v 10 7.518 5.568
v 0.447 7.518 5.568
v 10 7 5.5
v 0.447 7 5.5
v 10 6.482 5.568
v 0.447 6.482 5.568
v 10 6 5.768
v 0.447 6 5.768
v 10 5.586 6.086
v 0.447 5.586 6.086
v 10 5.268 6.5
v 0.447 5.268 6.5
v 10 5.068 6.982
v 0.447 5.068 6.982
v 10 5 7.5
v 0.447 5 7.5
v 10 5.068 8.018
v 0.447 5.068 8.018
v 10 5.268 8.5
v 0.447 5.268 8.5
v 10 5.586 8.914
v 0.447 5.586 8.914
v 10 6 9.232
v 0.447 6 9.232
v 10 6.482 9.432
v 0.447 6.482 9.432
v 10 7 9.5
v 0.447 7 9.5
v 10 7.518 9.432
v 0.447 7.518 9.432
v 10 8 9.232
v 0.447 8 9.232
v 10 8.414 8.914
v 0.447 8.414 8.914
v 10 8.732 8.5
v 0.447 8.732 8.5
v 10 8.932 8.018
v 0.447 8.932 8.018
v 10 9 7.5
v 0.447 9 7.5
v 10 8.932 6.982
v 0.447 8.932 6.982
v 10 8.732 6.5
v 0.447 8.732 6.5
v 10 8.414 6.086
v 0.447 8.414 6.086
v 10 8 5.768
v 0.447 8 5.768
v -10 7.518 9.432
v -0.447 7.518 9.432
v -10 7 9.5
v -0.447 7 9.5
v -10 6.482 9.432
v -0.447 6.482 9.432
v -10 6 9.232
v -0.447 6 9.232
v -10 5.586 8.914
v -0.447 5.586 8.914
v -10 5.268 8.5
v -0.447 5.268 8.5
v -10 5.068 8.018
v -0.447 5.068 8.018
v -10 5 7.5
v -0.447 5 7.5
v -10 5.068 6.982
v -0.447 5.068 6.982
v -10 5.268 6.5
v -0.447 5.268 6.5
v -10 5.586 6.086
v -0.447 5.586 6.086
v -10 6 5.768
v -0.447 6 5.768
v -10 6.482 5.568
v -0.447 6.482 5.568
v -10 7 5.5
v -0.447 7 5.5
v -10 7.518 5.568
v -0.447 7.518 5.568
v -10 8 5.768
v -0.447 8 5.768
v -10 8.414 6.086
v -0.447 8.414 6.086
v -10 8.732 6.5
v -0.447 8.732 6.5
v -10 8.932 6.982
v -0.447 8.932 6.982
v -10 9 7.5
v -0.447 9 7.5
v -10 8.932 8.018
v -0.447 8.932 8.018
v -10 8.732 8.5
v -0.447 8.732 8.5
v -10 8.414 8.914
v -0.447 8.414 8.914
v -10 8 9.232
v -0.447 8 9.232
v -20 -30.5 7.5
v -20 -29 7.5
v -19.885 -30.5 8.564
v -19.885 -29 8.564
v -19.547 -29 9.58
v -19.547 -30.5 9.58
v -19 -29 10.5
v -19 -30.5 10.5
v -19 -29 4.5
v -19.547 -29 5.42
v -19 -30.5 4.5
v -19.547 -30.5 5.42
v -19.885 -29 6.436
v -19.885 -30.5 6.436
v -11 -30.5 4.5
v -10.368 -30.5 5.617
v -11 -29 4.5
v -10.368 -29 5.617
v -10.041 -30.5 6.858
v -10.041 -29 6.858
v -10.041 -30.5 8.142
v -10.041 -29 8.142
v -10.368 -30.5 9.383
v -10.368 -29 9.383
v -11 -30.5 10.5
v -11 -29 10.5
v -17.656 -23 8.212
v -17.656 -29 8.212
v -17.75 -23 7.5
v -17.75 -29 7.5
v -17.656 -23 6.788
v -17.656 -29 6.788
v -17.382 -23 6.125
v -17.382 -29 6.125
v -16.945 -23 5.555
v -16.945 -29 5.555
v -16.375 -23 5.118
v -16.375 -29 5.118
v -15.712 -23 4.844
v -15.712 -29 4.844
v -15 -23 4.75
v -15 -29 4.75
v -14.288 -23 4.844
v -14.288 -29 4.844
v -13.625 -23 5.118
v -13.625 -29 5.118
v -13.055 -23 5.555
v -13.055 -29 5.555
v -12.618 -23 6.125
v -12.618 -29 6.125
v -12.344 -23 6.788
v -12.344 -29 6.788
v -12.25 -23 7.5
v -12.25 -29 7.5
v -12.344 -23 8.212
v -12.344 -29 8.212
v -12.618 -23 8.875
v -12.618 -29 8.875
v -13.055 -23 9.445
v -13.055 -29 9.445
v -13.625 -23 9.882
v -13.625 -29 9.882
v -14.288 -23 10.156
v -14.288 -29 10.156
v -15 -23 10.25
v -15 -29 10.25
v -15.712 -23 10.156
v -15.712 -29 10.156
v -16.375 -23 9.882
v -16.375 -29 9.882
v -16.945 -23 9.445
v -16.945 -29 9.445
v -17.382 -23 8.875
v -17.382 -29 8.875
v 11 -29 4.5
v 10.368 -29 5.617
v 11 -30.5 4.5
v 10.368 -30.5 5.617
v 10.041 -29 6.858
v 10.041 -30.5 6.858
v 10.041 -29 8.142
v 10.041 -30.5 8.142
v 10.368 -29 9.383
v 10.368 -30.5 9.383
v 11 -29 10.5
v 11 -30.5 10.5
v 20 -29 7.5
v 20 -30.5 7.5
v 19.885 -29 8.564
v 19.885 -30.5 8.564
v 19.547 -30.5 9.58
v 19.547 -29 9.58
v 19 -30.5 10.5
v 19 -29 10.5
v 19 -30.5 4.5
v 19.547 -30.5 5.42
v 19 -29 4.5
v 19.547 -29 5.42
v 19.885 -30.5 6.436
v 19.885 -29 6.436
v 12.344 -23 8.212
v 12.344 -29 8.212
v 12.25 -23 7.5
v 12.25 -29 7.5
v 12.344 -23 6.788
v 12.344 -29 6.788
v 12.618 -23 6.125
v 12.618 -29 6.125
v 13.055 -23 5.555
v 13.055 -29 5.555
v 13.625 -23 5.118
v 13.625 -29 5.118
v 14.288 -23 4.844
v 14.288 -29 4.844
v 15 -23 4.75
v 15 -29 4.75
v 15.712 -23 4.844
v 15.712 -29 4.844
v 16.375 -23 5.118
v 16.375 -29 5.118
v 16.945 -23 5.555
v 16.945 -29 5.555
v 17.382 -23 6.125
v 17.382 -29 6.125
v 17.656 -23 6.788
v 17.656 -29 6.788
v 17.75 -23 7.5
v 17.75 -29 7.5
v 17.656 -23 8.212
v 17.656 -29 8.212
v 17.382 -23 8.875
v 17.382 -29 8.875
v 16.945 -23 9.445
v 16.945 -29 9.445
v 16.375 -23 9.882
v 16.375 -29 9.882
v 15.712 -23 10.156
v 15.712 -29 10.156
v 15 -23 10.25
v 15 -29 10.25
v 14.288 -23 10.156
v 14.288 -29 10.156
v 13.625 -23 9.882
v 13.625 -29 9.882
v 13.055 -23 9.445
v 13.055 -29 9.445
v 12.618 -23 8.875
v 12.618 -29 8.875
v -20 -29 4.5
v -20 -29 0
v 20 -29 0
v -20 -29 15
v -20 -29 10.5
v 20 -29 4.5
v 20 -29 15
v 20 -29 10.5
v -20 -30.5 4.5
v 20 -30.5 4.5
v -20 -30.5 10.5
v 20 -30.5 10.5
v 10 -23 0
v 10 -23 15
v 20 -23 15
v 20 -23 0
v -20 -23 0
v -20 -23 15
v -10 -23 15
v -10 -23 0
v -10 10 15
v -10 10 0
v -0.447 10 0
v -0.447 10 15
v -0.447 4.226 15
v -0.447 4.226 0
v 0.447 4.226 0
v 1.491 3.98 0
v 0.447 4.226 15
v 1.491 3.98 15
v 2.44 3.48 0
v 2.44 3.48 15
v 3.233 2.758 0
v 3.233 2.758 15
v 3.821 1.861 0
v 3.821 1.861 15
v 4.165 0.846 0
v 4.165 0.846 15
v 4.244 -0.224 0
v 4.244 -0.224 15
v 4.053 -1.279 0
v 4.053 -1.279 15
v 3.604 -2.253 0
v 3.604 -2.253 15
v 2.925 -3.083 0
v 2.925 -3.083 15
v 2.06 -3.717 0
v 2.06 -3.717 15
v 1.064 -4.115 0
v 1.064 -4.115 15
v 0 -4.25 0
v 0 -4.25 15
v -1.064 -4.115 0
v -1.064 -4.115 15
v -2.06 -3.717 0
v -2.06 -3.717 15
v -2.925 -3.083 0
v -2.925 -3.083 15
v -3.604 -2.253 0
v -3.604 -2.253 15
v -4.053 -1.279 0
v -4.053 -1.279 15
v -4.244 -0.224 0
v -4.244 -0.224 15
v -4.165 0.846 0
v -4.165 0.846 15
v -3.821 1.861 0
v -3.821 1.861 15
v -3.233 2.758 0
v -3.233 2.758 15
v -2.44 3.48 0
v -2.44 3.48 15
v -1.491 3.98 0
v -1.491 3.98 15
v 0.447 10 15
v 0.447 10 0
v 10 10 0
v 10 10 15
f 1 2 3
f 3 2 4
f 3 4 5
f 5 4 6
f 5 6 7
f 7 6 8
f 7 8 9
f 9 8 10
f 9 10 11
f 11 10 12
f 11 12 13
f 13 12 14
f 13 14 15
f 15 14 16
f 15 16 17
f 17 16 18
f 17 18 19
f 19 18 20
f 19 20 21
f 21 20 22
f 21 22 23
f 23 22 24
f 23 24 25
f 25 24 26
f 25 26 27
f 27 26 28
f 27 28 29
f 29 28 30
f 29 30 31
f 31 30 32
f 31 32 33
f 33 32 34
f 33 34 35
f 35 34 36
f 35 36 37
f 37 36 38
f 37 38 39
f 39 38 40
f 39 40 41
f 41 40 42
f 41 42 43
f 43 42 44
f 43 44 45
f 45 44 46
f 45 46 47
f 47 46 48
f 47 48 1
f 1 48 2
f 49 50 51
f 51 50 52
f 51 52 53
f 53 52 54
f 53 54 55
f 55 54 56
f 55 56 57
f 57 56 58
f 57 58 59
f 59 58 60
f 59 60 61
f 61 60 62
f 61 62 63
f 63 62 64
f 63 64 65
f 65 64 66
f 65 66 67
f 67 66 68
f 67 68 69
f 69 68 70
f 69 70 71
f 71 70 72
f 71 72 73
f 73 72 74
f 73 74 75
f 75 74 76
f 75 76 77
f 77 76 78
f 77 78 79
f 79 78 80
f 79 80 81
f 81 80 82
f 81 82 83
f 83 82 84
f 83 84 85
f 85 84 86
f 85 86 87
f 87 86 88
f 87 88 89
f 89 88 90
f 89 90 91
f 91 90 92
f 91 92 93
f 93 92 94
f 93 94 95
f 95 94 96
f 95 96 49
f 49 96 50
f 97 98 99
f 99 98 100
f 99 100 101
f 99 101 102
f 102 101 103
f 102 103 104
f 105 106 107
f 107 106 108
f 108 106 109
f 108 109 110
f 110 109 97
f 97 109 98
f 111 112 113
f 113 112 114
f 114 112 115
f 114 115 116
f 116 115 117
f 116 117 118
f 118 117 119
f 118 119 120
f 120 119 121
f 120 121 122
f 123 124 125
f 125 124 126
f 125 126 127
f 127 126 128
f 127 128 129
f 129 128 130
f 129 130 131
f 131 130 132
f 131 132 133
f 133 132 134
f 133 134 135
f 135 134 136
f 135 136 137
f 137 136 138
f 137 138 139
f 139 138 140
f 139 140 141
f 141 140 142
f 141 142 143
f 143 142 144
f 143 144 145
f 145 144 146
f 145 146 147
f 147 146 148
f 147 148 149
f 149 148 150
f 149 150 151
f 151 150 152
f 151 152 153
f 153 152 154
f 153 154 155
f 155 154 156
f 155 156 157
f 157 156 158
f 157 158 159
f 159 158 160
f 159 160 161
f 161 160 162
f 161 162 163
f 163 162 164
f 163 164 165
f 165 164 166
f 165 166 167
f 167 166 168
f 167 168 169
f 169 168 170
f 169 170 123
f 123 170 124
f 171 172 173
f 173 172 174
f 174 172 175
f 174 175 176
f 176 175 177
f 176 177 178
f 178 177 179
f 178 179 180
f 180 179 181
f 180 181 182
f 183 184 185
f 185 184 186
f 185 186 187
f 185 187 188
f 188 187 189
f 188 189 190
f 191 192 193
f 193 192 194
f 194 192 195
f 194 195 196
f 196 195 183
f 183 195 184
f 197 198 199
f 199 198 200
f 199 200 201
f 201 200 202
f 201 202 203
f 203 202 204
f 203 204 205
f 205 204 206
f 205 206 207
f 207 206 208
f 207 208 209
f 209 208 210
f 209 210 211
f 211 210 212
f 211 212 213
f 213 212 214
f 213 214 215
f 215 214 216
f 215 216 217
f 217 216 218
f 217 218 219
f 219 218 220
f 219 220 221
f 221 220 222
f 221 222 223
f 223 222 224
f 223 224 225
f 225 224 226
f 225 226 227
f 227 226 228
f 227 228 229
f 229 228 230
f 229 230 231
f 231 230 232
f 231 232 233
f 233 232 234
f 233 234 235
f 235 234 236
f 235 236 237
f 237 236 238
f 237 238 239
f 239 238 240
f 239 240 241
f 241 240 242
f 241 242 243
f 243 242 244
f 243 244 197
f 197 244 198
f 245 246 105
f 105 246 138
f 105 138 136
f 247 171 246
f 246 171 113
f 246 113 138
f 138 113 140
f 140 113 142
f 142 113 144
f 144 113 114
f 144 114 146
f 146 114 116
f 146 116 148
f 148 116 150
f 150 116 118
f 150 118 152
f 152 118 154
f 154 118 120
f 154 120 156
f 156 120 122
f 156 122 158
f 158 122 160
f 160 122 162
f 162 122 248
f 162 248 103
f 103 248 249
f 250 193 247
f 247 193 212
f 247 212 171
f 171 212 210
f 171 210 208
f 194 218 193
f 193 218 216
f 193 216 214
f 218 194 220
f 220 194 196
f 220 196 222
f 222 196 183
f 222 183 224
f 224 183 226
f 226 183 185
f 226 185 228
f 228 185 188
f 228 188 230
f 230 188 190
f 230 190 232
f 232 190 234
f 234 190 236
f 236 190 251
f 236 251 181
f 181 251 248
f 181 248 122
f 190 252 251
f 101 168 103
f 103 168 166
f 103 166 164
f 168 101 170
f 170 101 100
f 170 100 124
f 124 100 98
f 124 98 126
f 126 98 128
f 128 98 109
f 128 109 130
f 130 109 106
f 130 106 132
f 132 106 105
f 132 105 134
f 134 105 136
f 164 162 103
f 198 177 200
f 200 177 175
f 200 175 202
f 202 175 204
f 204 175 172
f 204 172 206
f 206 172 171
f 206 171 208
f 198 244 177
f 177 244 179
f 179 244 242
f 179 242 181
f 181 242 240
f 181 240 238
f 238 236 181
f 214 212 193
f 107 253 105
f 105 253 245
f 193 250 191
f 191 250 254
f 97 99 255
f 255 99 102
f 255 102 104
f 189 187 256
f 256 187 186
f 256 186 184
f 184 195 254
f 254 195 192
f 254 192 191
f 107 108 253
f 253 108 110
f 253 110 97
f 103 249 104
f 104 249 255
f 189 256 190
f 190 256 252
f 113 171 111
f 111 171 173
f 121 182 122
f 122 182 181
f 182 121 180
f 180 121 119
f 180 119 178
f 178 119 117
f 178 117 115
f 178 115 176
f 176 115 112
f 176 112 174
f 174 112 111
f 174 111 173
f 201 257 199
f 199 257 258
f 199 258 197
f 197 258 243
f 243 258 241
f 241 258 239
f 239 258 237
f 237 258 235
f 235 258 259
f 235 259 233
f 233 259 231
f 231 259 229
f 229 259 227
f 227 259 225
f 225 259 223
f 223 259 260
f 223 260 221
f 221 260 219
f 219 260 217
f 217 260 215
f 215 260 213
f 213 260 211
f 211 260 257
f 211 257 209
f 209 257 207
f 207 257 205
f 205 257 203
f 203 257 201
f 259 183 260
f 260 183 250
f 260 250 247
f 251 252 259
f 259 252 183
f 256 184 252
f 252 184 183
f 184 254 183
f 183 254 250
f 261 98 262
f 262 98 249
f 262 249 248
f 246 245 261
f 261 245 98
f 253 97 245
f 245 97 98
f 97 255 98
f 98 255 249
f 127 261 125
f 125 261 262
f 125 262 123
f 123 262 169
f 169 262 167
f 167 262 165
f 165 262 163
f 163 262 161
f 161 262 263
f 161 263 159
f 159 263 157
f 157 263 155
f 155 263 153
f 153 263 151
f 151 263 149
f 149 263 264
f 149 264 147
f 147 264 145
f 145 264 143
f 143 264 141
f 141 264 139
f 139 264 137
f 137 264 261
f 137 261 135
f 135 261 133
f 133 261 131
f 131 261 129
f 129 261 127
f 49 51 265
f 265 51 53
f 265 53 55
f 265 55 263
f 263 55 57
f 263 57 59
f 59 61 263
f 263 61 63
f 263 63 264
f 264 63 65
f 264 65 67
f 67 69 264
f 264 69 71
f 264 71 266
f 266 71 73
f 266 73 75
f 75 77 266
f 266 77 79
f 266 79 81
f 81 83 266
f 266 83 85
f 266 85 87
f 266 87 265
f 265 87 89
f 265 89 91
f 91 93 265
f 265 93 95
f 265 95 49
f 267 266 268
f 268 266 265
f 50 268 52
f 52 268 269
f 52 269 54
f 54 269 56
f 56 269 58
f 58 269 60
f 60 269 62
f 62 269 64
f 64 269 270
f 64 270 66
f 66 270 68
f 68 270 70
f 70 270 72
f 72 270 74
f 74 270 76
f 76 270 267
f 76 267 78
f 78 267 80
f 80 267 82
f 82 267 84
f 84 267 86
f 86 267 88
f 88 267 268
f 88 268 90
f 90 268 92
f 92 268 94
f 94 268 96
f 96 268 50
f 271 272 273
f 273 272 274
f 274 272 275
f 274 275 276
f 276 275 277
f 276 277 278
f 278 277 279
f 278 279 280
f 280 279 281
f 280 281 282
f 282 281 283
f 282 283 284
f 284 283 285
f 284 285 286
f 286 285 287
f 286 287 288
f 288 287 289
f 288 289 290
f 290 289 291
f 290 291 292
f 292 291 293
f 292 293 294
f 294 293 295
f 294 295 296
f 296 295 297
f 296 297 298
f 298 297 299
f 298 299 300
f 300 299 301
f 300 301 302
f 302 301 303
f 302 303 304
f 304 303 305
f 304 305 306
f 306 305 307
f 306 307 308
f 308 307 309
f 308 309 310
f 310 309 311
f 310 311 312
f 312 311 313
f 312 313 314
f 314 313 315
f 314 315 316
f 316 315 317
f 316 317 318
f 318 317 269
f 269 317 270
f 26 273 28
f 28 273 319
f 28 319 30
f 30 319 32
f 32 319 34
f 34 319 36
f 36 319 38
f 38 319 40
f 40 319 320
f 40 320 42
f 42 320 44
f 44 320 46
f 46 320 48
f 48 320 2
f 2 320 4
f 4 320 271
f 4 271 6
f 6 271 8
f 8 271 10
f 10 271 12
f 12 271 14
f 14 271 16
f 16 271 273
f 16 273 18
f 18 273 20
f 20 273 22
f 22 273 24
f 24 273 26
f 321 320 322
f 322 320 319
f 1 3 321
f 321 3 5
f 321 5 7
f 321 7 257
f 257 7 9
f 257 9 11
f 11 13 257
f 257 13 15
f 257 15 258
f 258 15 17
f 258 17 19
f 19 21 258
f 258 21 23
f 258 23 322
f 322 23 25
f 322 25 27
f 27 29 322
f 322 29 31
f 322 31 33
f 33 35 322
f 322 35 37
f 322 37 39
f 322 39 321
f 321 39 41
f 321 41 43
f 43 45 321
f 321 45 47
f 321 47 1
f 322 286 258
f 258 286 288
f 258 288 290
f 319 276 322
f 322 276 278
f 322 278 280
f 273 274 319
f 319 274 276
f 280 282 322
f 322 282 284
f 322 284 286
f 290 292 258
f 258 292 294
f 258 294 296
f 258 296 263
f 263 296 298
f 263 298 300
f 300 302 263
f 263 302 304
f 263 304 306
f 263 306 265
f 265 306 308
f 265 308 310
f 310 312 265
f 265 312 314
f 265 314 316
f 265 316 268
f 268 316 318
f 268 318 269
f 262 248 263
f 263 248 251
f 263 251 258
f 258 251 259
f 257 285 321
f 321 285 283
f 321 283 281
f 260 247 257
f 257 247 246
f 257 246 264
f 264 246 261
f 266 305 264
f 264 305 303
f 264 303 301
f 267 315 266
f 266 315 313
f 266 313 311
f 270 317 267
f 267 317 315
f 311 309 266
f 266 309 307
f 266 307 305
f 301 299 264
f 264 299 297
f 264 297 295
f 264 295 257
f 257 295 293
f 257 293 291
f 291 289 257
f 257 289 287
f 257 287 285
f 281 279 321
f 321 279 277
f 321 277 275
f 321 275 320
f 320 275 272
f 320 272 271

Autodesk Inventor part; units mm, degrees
ref_plane "YZ Plane" through (0, 0, 0) normal (1, 0, 0) x (0, 1, 0)
ref_plane "XZ Plane" through (0, 0, 0) normal (0, 1, 0) x (-1, 0, 0)
ref_plane "XY Plane" through (0, 0, 0) normal (0, 0, 1) x (1, 0, 0)
sketch "Sketch1" plane through (0, 0, 0) normal (0, 0, 1) x (1, 0, 0)
  arc A0 (-0.4474, 4.2264) -> (0.4474, 4.2264) centre (0, 0) ccw
  line L0 (10, 10) -> (10, -23)
  line L1 (10, -23) -> (-10, -23)
  line L2 (-10, -23) -> (-10, 10)
  line L3 (-0.4474, 4.2264) -> (-0.4474, 10)
  line L4 (0.4474, 4.2264) -> (0.4474, 10)
  line L5 (-10, 10) -> (-0.4474, 10)
  line L6 (0.4474, 10) -> (10, 10)
  dimension "d2" = 8.5
  dimension "d3" = 20
  dimension "d7" = 23
  dimension "d43" = 10
  dimension "d44" = 10
extrude "Extrusion1" add sketch "Sketch1" along normal blind 15
sketch "Sketch2" plane through (-10, -23, 0) normal (0, -1, 0) x (1, 0, 0)
  line L0 (0, 0) -> (0, 15) projected
  line L1 (20, 0) -> (20, 15) projected
  line L2 (0, 0) -> (20, 15)
  line L3 (-10, 15) -> (30, 15)
  line L4 (30, 15) -> (30, 0)
  line L5 (30, 0) -> (-10, 0)
  line L6 (-10, 0) -> (-10, 15)
  line L7 (-10, 15) -> (30, 0) construction
  line L8 (30, 15) -> (-10, 0) construction
  point P0 (10, 0)
  point P1 (10, 7.5)
  dimension "d13" = 40
  dimension "d17" = 15
extrude "Extrusion2" add sketch "Sketch2" along normal blind 6
sketch "Sketch3" plane through (-10, -29, 0) normal (0, -1, 0) x (1, 0, 0)
  line L0 (-10, 10.5) -> (30, 10.5)
  line L1 (-10, 4.5) -> (30, 4.5)
  line L2 (-10, 4.5) -> (-10, 10.5)
  line L3 (-10, 0) -> (-10, 15) projected
  line L4 (30, 10.5) -> (30, 4.5)
  line L5 (30, 0) -> (30, 15) projected
  point P0 (10, 0)
extrude "Extrusion3" add sketch "Sketch3" along normal blind 1.5
sketch "Sketch4" plane through (-10, -30.5, 0) normal (0, -1, 0) x (1, 0, 0)
  line L0 (30, 4.5) -> (-10, 4.5) projected
  line L1 (-10, 10.5) -> (30, 10.5) projected
  line L2 (-10, 10.5) -> (-10, 4.5) projected
  line L3 (-10, 7.5) -> (-5, 7.5)
  line L4 (30, 15) -> (30, 0) projected
  line L5 (30, 7.5) -> (25, 7.5)
  point P0 (10, 0)
  dimension "d22" = 5
  dimension "d23" = 5
hole "Hole1" at (-15, -30.5, 7.5) at (15, -30.5, 7.5) direction (0, 1, 0) diameter 5.5 end through all counterbore diameter 10 counterbore depth 1.5
sketch "Sketch5" plane through (10, 10, 15) normal (1, 0, 0) x (0, 0, -1)
  line L0 (15, 0) -> (0, 0) projected
  line L1 (7.5, 0) -> (7.5, -3)
  point P0 (15, -10)
  dimension "d35" = 3
hole "Hole2" at (10, 7, 7.5) direction (-1, 0, 0) diameter 4 end through all
properties part number "Suporte Eixos 8mm"
